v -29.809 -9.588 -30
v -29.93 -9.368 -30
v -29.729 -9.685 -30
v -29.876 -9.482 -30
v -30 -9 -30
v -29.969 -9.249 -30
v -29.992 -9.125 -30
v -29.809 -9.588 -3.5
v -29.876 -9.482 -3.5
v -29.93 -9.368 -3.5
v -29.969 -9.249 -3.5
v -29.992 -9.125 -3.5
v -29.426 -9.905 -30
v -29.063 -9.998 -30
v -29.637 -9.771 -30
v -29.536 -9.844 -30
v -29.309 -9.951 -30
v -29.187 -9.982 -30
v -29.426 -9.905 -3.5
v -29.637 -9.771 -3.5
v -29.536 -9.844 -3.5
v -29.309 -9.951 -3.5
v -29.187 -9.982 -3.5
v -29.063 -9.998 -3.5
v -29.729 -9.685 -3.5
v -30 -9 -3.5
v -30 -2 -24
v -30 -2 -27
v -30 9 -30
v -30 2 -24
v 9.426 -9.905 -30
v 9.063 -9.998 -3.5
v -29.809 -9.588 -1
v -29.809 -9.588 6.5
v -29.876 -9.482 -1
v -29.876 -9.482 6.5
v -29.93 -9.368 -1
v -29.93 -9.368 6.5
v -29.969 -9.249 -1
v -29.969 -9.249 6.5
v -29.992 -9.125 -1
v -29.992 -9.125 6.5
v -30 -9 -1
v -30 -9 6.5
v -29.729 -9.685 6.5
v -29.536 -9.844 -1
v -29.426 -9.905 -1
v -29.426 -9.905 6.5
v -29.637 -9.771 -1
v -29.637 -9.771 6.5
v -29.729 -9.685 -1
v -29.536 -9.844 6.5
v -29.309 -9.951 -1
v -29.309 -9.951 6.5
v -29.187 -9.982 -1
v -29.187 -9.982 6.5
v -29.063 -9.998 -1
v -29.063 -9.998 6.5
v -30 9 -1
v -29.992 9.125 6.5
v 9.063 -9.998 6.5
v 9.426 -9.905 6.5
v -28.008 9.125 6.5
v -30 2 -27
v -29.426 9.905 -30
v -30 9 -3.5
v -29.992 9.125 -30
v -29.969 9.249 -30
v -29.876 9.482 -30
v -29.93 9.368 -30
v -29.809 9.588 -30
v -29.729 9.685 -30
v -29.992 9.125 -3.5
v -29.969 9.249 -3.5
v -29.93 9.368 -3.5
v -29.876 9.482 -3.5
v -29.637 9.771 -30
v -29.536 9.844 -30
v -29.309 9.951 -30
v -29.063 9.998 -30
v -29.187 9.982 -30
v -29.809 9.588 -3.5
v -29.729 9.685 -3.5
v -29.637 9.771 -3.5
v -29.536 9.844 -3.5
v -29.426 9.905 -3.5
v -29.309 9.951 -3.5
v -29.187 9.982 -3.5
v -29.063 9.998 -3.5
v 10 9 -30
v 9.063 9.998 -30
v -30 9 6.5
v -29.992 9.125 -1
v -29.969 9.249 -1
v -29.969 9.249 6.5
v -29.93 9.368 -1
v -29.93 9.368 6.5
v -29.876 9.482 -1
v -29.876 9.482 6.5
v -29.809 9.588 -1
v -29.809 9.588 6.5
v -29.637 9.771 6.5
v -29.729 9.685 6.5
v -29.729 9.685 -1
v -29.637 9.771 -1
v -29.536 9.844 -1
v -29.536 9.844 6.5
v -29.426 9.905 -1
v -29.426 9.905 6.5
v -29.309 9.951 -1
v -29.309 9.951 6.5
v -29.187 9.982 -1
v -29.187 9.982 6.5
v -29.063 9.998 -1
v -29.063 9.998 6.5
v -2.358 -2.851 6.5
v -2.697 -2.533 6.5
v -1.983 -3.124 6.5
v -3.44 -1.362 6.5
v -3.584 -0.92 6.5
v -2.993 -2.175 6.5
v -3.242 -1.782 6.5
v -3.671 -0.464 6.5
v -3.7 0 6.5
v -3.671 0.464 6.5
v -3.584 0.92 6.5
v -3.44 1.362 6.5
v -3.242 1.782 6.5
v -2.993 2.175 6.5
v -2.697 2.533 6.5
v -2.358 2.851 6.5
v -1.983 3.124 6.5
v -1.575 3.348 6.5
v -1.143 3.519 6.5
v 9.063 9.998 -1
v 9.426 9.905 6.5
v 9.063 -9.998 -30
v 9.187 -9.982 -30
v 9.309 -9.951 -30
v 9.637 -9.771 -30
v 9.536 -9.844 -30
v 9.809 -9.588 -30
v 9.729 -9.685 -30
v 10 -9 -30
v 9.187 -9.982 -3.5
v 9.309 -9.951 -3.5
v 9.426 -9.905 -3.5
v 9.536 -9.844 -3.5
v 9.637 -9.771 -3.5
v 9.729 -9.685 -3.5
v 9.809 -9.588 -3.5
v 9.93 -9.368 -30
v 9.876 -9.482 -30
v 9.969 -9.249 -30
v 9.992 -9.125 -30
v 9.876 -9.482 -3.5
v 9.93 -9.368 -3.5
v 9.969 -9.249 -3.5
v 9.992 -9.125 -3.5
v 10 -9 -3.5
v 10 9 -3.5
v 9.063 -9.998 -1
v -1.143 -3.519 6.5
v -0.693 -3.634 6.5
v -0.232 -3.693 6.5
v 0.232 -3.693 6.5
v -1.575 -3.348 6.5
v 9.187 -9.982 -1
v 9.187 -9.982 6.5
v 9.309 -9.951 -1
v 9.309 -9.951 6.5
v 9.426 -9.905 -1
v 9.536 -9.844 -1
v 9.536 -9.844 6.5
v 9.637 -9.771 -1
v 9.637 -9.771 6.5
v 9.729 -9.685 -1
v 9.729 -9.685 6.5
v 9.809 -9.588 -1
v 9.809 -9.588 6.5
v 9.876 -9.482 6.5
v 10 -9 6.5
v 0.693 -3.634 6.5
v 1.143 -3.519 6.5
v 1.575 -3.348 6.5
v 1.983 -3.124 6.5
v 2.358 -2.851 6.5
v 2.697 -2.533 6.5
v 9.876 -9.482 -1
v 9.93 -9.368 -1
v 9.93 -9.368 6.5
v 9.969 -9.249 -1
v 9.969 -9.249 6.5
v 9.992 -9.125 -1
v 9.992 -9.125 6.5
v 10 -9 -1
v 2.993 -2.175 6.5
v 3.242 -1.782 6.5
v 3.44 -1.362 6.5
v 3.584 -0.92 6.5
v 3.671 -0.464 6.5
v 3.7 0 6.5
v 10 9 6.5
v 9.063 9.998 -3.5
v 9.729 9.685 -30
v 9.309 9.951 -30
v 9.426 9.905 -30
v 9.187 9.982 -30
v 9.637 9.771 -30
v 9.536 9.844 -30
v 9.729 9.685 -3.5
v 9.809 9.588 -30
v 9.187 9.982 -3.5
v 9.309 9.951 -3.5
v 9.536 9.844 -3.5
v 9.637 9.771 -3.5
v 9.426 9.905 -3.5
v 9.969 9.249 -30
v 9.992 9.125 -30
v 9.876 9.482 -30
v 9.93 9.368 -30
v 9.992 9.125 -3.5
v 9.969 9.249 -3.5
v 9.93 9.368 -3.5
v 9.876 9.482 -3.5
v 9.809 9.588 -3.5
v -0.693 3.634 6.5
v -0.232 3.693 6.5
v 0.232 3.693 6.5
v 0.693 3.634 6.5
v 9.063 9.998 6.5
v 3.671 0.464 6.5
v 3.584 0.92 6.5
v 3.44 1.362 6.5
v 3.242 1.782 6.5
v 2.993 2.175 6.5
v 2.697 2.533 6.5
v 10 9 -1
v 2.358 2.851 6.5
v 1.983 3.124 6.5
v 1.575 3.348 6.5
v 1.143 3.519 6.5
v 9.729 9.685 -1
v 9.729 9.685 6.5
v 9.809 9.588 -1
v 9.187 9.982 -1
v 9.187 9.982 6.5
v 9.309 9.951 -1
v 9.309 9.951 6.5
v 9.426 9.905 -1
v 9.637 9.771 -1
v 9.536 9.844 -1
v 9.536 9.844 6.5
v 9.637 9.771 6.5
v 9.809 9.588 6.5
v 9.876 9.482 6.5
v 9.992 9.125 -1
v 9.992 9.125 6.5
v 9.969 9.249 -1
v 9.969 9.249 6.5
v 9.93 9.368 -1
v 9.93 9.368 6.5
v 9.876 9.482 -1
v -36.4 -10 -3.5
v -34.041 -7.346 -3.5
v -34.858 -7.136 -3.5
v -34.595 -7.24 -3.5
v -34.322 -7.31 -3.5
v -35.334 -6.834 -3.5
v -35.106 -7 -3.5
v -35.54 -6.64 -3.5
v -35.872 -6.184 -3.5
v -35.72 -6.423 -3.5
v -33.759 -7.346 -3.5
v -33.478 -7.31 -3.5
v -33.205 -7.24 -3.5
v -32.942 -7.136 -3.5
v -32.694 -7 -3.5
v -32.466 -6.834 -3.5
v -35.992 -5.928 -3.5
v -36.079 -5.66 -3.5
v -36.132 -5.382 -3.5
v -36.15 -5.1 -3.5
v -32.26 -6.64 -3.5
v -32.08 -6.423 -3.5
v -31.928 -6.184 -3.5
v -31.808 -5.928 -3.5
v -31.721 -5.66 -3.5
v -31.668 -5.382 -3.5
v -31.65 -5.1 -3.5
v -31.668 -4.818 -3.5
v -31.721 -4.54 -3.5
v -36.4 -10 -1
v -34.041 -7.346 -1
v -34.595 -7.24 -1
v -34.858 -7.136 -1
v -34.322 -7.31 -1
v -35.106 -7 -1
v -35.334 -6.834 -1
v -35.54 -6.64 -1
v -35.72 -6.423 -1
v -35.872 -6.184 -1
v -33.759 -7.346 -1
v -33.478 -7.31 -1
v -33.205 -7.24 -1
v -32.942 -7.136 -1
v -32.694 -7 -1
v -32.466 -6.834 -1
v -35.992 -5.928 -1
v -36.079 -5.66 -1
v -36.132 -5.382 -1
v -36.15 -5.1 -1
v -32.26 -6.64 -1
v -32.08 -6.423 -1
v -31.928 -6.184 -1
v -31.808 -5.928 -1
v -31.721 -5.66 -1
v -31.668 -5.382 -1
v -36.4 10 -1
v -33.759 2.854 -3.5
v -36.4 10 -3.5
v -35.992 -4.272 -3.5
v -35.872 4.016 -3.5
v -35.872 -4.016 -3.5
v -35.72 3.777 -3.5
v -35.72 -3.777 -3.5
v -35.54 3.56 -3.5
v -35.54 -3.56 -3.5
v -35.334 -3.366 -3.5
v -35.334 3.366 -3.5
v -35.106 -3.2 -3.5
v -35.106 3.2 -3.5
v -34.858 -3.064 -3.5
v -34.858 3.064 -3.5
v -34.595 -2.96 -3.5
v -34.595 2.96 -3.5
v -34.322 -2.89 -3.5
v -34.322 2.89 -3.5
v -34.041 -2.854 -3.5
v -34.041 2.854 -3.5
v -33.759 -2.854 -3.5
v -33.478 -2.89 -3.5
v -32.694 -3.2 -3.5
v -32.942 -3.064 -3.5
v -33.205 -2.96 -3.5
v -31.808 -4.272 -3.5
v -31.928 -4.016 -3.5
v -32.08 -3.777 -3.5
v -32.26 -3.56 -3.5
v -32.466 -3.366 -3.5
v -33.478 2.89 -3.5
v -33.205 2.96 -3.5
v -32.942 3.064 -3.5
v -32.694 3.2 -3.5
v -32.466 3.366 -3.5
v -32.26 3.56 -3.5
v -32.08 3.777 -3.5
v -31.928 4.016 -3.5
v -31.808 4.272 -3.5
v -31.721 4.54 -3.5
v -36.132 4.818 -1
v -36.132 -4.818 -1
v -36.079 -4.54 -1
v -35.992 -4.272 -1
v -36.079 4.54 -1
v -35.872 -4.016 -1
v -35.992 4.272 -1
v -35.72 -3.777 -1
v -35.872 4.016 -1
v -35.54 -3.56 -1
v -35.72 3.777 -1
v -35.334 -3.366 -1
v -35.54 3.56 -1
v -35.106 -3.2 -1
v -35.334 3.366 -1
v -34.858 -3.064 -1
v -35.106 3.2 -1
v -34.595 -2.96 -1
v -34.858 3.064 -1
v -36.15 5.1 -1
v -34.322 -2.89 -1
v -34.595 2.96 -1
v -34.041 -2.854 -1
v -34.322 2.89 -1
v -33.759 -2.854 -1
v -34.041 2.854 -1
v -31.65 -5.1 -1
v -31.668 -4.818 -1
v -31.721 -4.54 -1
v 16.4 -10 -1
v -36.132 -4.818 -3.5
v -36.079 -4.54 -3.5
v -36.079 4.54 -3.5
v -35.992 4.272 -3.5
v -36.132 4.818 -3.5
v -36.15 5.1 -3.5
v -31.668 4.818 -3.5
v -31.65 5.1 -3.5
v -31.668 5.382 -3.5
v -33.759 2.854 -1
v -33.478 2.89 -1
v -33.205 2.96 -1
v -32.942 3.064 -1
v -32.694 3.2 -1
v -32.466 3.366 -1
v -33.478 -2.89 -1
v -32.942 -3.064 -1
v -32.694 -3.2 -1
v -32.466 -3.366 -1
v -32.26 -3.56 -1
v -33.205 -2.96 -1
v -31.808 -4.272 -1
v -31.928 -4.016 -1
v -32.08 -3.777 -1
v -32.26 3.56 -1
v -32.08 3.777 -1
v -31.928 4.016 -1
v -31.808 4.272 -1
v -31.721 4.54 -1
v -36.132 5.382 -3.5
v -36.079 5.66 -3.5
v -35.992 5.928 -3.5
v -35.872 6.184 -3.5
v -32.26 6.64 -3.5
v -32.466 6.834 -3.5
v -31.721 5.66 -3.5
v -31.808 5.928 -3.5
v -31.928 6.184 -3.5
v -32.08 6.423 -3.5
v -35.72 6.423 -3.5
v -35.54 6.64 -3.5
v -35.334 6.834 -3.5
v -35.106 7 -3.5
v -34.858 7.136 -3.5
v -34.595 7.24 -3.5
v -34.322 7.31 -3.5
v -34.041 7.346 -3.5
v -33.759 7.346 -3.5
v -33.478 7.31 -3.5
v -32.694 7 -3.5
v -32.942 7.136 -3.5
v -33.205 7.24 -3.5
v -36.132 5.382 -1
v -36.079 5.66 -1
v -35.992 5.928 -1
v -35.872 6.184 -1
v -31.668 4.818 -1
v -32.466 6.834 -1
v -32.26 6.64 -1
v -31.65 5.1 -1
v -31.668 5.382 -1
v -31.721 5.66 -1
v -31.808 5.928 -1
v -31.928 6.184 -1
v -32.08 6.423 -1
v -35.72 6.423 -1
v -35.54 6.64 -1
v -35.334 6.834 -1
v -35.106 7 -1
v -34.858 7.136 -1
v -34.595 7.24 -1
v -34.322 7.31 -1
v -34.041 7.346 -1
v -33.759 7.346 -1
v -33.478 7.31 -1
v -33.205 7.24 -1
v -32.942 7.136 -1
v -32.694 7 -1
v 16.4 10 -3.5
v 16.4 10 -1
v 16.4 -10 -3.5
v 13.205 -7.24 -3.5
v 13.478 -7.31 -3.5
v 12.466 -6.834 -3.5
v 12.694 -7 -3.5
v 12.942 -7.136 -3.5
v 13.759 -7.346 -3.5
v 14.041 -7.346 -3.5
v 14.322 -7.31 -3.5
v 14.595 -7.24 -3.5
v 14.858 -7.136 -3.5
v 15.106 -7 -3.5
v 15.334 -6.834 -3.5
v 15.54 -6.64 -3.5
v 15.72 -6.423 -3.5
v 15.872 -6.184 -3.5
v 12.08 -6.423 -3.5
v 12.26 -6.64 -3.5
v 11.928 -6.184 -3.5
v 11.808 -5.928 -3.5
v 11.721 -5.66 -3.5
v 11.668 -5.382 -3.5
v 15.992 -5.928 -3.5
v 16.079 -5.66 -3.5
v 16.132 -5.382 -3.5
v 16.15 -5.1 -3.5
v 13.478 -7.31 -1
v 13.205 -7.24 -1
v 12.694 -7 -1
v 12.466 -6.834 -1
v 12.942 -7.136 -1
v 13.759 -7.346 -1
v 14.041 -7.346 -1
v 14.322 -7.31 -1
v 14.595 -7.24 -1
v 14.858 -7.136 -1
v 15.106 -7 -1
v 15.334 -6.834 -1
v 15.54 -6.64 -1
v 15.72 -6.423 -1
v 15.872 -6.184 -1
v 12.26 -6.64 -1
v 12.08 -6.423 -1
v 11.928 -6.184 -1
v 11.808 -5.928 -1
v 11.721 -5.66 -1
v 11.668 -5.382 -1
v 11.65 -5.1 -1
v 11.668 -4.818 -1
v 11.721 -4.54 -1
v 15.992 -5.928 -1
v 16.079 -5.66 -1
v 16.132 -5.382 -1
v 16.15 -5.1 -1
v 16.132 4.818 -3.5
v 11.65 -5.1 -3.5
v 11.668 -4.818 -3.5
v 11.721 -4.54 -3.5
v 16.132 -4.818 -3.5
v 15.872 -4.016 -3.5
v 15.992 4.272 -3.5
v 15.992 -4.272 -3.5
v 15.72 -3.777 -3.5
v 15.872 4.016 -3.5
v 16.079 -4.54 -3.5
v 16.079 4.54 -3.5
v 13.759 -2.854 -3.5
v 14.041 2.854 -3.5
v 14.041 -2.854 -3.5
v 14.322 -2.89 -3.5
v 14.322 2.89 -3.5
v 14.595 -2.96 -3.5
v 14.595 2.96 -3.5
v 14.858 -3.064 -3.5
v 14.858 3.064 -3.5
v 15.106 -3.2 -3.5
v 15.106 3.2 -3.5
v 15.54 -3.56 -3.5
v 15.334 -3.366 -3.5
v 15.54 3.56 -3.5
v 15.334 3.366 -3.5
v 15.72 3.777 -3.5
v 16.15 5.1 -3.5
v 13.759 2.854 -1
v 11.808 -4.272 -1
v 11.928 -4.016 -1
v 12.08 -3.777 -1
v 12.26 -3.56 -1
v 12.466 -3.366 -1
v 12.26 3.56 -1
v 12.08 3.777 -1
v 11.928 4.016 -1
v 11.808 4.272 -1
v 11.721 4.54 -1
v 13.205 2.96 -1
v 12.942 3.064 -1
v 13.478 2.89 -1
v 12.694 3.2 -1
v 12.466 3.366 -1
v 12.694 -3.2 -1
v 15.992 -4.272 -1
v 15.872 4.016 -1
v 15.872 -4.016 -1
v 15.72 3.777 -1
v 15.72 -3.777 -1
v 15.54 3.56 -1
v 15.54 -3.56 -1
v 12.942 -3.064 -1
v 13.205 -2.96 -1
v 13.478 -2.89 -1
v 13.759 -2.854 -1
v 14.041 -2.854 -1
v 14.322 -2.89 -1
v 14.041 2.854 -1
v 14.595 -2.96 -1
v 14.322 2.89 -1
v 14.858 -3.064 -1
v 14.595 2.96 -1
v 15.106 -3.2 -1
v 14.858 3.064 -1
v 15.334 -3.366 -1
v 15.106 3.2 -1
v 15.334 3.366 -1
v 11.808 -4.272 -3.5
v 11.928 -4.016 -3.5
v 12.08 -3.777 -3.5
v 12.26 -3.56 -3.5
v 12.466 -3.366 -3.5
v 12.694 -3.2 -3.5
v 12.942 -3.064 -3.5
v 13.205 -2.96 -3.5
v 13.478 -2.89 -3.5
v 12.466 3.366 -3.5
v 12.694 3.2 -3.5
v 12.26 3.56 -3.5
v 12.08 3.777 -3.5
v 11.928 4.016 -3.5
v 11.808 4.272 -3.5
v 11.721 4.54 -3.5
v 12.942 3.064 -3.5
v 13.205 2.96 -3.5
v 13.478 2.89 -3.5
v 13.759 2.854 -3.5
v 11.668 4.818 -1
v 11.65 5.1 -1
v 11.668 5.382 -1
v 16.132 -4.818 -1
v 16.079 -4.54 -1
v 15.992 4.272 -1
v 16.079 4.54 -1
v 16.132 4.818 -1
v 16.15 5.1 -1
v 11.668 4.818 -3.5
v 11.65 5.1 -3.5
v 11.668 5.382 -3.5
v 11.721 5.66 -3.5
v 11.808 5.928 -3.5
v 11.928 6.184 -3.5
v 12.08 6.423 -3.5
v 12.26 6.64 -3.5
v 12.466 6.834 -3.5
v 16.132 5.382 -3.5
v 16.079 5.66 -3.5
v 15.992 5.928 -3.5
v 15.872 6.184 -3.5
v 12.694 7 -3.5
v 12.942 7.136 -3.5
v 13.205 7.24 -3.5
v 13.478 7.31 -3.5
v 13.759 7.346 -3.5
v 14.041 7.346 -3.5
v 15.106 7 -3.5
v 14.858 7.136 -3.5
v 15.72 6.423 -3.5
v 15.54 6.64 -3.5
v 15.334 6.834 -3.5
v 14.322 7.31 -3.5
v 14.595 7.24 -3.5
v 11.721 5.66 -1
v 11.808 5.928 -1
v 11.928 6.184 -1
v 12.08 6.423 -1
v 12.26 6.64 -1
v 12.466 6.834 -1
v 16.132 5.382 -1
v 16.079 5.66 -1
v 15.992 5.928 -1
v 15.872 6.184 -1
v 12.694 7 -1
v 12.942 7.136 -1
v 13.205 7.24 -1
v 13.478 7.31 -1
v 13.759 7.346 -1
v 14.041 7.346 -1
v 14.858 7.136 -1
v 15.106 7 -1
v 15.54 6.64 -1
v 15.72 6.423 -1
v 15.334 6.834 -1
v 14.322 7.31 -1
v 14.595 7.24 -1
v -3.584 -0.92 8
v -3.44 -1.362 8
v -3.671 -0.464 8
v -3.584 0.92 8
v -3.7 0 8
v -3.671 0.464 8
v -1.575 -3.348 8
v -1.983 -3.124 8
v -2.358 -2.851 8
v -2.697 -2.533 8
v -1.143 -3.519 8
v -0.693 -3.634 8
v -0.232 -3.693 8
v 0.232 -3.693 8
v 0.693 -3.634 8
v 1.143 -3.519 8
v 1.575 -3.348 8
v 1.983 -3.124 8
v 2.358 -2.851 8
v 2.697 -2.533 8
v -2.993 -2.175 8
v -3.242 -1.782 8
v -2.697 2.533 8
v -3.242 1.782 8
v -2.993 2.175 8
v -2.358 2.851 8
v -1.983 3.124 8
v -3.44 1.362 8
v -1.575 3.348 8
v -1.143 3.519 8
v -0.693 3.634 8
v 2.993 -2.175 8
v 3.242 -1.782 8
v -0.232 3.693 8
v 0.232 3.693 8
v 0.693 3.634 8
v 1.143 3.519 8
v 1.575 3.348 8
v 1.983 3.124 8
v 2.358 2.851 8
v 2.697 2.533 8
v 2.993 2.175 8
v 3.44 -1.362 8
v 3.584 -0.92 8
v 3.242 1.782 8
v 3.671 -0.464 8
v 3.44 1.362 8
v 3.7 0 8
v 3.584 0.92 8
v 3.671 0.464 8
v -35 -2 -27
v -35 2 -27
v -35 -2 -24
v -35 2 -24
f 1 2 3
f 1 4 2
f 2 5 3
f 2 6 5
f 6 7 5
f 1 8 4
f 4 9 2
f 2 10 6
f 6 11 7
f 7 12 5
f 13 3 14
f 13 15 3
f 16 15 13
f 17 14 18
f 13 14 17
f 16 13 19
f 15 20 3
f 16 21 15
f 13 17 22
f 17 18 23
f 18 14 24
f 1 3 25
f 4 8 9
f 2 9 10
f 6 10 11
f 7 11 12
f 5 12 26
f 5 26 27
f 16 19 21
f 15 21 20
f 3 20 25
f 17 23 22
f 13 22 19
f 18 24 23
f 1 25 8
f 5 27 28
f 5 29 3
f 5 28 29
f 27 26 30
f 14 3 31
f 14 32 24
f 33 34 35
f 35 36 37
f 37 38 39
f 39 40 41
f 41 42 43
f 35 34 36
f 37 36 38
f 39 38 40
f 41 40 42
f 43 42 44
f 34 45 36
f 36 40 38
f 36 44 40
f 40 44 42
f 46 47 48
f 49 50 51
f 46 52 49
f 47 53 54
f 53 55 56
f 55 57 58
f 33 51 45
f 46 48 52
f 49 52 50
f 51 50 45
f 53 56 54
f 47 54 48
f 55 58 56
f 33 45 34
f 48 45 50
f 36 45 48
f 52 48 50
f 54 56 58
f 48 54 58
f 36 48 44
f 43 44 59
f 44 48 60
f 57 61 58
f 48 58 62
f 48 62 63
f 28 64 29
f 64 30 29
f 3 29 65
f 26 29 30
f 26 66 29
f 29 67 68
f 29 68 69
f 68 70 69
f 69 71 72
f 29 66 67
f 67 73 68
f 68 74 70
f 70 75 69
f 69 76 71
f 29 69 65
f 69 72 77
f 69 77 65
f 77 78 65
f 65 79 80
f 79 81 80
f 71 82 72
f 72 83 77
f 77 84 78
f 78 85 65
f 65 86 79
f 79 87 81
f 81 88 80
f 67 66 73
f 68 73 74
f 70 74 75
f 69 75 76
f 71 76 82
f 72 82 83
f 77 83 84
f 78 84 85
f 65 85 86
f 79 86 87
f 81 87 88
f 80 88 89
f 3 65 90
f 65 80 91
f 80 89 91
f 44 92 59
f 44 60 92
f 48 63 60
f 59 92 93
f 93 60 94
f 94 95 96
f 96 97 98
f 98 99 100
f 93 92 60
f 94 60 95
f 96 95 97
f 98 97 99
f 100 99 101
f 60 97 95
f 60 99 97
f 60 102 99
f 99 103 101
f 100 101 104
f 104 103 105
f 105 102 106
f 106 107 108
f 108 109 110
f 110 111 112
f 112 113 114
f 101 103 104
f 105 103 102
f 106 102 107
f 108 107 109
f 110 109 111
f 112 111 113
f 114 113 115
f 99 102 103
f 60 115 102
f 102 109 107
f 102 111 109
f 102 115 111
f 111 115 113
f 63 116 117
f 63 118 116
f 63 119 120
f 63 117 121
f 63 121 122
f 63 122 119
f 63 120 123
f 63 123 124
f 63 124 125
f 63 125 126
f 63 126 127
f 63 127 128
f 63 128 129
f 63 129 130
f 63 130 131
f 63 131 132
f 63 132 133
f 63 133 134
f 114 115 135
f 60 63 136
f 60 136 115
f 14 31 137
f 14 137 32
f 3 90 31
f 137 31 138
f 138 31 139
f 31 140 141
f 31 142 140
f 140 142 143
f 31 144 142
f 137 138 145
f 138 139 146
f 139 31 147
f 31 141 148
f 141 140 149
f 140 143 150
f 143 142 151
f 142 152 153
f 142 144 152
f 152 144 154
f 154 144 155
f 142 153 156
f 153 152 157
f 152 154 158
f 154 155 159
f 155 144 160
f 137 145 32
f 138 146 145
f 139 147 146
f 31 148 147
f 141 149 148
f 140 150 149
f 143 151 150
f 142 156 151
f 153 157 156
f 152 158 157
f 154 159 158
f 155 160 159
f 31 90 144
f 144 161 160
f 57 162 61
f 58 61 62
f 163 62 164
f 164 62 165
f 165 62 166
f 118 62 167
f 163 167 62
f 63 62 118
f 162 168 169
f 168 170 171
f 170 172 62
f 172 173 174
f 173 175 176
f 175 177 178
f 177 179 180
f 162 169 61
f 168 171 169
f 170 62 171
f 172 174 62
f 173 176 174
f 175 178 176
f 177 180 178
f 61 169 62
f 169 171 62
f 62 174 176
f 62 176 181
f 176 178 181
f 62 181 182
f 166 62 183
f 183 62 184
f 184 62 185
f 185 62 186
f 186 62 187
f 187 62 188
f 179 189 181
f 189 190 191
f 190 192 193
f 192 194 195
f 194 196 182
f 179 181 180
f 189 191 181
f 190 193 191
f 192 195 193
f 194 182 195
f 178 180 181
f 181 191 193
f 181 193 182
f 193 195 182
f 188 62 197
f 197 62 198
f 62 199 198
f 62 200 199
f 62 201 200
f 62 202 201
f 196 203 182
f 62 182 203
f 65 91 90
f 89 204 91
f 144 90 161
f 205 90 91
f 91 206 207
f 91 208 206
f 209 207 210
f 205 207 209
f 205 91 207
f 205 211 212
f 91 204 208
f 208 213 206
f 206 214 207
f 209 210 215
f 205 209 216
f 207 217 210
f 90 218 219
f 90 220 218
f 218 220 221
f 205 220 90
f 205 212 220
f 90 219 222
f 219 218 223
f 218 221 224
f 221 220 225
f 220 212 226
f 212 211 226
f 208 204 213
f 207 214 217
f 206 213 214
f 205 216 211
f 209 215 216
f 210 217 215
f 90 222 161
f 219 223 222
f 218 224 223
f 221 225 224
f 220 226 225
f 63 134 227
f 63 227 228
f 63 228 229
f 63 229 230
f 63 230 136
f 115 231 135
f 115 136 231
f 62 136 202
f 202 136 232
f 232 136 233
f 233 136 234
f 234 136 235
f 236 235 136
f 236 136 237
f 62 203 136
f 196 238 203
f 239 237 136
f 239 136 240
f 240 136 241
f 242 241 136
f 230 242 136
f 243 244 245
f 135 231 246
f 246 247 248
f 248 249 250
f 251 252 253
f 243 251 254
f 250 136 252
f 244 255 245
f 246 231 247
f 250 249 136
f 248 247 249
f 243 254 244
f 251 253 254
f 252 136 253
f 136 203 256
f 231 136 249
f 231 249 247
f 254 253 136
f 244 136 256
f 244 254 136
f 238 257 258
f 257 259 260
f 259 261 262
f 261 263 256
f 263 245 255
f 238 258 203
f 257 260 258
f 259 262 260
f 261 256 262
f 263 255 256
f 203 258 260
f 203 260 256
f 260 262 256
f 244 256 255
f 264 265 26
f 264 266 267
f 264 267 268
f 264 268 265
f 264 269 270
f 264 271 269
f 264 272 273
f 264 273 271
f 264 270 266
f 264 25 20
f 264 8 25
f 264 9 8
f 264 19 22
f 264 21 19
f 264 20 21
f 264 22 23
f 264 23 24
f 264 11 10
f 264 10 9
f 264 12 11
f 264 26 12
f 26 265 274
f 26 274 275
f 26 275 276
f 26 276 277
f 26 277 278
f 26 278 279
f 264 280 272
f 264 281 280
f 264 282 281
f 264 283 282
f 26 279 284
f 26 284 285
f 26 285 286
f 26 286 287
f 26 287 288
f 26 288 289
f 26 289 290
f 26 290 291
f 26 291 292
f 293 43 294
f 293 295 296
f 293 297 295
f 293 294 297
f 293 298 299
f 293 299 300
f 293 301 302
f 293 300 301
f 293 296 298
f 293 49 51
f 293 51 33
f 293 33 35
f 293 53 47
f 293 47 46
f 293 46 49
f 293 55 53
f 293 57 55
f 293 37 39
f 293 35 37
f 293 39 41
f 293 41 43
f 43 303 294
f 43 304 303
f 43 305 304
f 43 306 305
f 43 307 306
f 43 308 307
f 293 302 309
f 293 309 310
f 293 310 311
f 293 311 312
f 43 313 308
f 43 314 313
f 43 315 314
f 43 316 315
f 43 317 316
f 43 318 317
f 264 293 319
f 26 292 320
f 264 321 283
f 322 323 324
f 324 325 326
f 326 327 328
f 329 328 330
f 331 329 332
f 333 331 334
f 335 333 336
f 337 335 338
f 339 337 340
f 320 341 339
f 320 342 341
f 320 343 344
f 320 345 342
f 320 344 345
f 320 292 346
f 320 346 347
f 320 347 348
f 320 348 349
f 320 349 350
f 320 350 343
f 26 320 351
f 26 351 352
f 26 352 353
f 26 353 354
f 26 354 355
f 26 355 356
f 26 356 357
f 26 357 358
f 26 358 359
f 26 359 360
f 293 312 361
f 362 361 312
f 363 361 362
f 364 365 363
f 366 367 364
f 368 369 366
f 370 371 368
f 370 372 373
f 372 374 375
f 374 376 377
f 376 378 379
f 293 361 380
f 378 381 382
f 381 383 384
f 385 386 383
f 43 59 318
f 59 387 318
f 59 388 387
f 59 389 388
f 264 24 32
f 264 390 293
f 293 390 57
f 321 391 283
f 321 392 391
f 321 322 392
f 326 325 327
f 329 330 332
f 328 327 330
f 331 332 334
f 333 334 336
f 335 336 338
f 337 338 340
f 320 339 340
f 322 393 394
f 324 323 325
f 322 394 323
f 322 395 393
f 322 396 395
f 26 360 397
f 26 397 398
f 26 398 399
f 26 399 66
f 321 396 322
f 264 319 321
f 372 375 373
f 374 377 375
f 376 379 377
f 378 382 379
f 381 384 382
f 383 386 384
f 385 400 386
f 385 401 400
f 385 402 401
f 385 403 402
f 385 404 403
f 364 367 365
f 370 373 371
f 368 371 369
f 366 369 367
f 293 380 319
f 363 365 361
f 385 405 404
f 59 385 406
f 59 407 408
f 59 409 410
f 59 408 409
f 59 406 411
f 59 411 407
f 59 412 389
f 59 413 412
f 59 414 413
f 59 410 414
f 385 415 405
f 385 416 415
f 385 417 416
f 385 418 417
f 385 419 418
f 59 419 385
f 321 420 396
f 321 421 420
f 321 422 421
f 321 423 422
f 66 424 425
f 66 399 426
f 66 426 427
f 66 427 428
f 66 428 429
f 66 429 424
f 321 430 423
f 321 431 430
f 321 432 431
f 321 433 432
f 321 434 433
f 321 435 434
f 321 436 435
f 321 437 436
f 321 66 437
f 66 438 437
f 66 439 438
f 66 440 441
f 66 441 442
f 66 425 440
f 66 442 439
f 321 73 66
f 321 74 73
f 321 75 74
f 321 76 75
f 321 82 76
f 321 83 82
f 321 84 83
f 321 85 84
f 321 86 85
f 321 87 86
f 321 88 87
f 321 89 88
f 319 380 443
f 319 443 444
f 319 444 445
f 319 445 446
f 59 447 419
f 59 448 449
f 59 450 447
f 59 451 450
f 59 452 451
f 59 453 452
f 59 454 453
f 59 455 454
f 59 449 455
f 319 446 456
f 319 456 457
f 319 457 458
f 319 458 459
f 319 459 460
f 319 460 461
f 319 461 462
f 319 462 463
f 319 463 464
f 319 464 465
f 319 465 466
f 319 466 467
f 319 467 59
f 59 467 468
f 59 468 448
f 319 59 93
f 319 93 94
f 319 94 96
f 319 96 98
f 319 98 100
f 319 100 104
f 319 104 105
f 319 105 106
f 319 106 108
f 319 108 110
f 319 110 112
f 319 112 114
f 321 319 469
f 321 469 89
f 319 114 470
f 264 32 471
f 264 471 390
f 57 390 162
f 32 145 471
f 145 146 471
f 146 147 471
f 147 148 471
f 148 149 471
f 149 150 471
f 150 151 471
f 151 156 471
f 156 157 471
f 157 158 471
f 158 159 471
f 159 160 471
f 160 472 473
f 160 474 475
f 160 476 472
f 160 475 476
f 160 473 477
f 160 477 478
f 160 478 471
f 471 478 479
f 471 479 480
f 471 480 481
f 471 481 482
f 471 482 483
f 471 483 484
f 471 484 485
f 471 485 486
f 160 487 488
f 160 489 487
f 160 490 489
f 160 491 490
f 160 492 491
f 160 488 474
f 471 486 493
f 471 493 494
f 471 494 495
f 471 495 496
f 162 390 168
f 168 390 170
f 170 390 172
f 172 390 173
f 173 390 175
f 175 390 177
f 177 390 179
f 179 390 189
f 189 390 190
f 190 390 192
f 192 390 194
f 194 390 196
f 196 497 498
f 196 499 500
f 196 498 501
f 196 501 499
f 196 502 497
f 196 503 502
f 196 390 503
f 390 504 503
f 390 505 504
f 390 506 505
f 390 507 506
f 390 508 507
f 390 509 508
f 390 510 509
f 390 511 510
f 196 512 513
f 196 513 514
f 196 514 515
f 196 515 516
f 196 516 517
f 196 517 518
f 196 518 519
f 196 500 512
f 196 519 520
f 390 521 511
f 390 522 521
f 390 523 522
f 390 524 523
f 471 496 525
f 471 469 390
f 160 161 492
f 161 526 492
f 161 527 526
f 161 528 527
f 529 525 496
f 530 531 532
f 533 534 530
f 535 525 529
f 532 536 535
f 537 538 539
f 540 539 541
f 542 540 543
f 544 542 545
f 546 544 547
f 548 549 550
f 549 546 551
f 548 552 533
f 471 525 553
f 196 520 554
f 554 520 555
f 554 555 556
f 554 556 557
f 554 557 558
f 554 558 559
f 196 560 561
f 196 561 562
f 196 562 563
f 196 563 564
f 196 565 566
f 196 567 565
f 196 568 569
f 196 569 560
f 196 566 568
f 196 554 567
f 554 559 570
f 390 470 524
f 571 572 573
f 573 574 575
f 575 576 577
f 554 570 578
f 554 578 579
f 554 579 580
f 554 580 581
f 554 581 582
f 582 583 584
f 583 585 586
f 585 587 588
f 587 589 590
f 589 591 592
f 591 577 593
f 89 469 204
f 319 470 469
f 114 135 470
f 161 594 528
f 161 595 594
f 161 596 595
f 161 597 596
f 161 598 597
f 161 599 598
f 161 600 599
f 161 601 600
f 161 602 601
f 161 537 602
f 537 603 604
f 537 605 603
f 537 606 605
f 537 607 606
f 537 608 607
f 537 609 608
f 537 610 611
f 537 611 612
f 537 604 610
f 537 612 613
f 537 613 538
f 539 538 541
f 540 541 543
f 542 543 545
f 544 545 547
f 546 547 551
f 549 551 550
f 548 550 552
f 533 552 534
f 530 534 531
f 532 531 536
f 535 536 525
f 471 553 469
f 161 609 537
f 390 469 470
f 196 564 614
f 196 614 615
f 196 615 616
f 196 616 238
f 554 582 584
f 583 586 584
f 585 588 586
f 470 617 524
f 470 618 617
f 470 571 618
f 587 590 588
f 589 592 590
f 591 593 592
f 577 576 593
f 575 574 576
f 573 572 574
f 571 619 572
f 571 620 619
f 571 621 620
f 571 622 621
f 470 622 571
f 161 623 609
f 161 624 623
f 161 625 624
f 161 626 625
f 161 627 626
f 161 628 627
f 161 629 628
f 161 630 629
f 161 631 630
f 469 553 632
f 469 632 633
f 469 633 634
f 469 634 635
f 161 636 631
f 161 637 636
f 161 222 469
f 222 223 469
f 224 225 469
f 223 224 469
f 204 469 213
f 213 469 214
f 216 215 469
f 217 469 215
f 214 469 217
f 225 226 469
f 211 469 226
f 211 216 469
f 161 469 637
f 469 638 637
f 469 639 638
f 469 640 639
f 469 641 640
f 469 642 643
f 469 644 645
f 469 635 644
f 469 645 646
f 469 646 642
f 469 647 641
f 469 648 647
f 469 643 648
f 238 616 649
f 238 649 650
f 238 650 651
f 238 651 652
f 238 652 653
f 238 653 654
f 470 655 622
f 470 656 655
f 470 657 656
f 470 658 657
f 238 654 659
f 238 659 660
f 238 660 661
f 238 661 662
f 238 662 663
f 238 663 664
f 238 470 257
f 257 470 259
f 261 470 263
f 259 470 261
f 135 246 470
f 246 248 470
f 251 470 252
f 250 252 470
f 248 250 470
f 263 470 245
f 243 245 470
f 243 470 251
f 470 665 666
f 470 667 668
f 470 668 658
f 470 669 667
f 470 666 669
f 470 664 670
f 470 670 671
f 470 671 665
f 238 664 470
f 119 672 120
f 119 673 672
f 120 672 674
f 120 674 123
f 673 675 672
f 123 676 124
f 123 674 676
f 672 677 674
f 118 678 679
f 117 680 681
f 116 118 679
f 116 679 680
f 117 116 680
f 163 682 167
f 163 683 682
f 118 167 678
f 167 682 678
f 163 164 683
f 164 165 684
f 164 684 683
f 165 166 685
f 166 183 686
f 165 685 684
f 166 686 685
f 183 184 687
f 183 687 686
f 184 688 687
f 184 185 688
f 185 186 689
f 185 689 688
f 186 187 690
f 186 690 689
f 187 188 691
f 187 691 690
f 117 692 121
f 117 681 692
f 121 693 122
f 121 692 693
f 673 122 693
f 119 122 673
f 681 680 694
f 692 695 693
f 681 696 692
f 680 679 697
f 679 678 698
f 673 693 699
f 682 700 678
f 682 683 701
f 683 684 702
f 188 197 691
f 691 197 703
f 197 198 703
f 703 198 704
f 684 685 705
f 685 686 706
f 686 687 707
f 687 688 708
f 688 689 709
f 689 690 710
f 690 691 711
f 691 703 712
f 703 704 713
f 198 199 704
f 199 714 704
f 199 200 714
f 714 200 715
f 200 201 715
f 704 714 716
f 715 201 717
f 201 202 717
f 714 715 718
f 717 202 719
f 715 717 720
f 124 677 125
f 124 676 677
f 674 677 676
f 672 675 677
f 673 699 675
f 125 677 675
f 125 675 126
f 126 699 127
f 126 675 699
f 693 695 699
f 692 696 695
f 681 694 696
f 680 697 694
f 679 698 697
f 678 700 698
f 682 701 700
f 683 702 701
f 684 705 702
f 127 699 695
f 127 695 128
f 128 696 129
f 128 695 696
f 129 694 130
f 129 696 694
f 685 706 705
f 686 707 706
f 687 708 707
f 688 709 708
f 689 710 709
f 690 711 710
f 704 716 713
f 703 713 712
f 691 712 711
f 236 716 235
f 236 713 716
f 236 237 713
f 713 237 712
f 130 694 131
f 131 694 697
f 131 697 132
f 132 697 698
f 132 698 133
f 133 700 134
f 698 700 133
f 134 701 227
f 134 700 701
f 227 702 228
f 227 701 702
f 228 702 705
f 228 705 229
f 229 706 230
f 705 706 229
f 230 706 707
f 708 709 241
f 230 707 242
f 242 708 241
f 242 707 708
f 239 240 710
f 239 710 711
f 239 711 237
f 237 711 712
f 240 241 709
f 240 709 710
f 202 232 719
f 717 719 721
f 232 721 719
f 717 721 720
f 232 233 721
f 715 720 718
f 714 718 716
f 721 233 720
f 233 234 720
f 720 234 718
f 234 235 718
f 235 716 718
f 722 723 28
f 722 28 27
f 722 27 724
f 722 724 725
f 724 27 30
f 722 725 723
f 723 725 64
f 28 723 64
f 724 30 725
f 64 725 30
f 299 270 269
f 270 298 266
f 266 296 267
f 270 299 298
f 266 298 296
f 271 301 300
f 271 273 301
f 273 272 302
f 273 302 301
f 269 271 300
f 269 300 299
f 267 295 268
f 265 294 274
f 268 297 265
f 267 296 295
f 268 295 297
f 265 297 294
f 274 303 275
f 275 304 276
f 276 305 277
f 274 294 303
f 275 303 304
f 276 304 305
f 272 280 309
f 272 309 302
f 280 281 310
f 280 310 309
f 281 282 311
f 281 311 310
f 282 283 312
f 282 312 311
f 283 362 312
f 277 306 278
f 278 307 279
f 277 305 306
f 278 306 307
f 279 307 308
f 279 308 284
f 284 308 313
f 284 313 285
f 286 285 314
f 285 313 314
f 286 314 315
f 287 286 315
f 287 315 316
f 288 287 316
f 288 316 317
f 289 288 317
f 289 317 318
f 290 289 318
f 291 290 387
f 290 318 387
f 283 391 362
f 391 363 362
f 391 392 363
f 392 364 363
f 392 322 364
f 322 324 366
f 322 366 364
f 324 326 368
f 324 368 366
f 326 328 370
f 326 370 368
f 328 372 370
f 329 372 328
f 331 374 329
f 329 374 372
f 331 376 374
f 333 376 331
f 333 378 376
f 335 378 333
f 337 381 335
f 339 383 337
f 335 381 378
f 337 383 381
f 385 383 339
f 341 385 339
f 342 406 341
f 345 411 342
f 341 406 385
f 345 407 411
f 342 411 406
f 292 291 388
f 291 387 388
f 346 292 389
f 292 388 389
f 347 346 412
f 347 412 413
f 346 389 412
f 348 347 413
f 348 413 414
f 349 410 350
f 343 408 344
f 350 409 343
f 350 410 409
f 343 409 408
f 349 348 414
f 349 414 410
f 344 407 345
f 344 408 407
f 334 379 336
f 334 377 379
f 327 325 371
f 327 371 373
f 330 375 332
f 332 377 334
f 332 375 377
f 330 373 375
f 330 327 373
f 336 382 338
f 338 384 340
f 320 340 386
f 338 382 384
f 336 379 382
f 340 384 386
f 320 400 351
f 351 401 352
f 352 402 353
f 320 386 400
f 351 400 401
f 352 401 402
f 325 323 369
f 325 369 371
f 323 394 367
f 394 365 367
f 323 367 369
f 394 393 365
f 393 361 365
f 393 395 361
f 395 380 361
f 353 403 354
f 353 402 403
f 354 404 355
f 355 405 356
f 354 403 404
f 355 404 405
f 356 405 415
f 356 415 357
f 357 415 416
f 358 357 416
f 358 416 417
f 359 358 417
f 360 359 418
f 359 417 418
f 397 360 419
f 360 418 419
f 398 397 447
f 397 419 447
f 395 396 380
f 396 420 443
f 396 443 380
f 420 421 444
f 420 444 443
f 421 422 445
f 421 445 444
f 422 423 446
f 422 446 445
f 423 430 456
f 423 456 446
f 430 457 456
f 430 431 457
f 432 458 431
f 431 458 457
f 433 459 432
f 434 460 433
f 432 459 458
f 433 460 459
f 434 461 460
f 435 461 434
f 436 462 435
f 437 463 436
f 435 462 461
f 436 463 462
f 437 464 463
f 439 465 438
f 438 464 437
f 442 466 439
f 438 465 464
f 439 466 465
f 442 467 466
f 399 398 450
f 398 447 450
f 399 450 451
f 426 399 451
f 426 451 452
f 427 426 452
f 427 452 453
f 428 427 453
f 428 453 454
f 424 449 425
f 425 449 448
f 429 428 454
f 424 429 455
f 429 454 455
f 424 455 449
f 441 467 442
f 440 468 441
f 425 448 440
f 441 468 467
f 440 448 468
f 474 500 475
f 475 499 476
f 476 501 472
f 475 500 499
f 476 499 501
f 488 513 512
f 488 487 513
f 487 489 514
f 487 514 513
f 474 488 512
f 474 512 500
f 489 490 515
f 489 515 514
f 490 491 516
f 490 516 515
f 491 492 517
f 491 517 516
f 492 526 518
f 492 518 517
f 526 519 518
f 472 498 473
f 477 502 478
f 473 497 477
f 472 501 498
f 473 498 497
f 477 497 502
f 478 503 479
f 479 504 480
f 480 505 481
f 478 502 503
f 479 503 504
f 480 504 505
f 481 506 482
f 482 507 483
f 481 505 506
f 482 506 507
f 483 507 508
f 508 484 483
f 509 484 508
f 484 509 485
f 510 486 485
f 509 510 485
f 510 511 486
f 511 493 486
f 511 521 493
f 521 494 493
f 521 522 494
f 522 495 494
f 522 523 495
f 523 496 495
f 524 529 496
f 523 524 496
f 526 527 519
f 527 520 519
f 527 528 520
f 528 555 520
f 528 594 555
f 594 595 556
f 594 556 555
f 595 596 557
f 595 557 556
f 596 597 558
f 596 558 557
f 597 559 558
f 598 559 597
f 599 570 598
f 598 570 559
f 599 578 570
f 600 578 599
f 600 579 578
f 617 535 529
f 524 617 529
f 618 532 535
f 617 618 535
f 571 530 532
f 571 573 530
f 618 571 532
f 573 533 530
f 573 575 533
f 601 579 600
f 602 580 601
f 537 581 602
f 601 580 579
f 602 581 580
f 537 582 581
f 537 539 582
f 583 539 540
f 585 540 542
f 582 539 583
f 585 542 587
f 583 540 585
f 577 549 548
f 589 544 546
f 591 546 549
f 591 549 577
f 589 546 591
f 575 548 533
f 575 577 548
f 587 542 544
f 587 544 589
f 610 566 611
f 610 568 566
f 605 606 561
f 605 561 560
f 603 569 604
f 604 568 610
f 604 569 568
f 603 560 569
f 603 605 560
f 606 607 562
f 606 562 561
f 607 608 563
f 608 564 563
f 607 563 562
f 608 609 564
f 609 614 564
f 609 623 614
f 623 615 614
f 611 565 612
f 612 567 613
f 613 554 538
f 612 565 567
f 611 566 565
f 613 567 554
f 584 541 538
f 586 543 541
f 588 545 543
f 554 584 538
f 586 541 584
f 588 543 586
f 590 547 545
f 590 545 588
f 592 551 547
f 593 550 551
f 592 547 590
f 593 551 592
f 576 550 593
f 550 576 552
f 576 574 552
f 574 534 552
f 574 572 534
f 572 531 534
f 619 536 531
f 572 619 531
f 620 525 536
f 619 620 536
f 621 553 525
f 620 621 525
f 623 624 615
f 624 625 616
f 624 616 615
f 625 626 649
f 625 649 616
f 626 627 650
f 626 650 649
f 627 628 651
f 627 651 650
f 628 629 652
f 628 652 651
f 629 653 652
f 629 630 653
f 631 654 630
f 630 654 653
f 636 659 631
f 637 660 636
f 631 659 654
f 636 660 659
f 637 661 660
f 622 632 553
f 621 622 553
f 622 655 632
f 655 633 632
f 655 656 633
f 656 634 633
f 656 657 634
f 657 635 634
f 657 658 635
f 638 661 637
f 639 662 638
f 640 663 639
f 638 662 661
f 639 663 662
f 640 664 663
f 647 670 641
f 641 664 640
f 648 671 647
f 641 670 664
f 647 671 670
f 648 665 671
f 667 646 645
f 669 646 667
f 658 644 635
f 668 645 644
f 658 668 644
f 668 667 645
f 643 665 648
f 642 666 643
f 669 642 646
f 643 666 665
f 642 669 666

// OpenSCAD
$fn = 50;

difference() {
	union() {
		translate(v = [-10.0, 0, -30.0]) {
			hull() {
				translate(v = [-19.0, 9.0, 0]) {
					cylinder(h = 36.5, r = 1);
				}
				translate(v = [19.0, 9.0, 0]) {
					cylinder(h = 36.5, r = 1);
				}
				translate(v = [-19.0, -9.0, 0]) {
					cylinder(h = 36.5, r = 1);
				}
				translate(v = [19.0, -9.0, 0]) {
					cylinder(h = 36.5, r = 1);
				}
			}
		}
		translate(v = [-36.4, -10.0, -3.5]) {
			cube(size = [52.8, 20.0, 2.5]);
		}
		translate(v = [0, 0, 6.5]) {
			cylinder(h = 1.5, r = 3.7);
		}
		translate(v = [-35.0, -2.0, -27.0]) {
			cube(size = [6, 4, 3]);
		}
	}
	union() {
		translate(v = [-33.9, -5.1, -5]) {
			cylinder(h = 5, r = 2.25);
		}
		translate(v = [-33.9, 5.1, -5]) {
			cylinder(h = 5, r = 2.25);
		}
		translate(v = [13.899999999999999, -5.1, -5]) {
			cylinder(h = 5, r = 2.25);
		}
		translate(v = [13.899999999999999, 5.1, -5]) {
			cylinder(h = 5, r = 2.25);
		}
	}
}
